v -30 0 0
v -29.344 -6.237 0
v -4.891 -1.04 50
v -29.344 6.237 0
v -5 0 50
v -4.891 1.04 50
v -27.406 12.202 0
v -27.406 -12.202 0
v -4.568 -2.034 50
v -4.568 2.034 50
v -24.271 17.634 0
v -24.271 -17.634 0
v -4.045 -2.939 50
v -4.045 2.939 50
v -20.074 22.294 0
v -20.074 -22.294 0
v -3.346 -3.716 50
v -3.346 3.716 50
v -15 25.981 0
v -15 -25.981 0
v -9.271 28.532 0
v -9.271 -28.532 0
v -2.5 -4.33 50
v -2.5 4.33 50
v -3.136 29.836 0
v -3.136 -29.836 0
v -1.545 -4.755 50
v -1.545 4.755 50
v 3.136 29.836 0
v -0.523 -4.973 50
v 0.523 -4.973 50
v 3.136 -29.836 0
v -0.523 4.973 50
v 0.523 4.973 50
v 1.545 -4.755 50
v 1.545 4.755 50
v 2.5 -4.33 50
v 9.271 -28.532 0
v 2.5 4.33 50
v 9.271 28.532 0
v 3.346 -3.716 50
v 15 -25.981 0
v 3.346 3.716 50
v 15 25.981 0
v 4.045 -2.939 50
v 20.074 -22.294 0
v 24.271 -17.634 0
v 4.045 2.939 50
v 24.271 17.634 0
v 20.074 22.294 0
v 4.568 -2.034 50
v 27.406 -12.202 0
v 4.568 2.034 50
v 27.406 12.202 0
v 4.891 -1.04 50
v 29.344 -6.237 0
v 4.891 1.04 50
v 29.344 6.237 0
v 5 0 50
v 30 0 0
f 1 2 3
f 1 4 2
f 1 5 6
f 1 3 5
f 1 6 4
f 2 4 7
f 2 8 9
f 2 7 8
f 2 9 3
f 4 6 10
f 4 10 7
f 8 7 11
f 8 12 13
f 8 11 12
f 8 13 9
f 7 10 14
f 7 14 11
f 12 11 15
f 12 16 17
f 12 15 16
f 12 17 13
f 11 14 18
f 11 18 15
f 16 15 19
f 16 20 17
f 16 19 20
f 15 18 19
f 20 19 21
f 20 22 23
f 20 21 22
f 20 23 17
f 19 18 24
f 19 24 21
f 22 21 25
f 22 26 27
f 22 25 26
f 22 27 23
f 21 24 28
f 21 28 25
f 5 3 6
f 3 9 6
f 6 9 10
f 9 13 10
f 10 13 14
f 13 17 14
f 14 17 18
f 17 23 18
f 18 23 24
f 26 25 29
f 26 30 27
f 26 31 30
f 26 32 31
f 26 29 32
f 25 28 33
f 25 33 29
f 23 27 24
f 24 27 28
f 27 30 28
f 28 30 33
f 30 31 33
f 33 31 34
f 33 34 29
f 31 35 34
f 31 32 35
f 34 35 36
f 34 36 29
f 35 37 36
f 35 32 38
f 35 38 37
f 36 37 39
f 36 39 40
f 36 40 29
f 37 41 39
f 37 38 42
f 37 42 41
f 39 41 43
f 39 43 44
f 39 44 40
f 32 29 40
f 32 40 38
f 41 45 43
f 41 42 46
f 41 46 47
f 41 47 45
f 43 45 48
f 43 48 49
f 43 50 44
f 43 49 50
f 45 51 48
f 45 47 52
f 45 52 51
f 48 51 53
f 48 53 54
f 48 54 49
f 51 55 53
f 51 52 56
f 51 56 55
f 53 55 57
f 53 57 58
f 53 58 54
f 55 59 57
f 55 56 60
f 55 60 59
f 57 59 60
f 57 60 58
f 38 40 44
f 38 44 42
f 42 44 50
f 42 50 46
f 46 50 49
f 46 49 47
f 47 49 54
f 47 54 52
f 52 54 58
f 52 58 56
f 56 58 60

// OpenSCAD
// Start: lazy_union
default_5_default_5();
// End: lazy_union

// Modules.

// 'PartMaterial undef-default - default 5.0'
module default_5_default_5() {
  // 'None : _combine_solids_and_holes'
  union() {
    // 'default : _combine_solids_and_holes'
    union() {
      // 'default'
      cylinder(h=50.0, r1=30.0, r2=5.0, center=false, $fn=30);
    }
  }
} // end module default_5_default_5
